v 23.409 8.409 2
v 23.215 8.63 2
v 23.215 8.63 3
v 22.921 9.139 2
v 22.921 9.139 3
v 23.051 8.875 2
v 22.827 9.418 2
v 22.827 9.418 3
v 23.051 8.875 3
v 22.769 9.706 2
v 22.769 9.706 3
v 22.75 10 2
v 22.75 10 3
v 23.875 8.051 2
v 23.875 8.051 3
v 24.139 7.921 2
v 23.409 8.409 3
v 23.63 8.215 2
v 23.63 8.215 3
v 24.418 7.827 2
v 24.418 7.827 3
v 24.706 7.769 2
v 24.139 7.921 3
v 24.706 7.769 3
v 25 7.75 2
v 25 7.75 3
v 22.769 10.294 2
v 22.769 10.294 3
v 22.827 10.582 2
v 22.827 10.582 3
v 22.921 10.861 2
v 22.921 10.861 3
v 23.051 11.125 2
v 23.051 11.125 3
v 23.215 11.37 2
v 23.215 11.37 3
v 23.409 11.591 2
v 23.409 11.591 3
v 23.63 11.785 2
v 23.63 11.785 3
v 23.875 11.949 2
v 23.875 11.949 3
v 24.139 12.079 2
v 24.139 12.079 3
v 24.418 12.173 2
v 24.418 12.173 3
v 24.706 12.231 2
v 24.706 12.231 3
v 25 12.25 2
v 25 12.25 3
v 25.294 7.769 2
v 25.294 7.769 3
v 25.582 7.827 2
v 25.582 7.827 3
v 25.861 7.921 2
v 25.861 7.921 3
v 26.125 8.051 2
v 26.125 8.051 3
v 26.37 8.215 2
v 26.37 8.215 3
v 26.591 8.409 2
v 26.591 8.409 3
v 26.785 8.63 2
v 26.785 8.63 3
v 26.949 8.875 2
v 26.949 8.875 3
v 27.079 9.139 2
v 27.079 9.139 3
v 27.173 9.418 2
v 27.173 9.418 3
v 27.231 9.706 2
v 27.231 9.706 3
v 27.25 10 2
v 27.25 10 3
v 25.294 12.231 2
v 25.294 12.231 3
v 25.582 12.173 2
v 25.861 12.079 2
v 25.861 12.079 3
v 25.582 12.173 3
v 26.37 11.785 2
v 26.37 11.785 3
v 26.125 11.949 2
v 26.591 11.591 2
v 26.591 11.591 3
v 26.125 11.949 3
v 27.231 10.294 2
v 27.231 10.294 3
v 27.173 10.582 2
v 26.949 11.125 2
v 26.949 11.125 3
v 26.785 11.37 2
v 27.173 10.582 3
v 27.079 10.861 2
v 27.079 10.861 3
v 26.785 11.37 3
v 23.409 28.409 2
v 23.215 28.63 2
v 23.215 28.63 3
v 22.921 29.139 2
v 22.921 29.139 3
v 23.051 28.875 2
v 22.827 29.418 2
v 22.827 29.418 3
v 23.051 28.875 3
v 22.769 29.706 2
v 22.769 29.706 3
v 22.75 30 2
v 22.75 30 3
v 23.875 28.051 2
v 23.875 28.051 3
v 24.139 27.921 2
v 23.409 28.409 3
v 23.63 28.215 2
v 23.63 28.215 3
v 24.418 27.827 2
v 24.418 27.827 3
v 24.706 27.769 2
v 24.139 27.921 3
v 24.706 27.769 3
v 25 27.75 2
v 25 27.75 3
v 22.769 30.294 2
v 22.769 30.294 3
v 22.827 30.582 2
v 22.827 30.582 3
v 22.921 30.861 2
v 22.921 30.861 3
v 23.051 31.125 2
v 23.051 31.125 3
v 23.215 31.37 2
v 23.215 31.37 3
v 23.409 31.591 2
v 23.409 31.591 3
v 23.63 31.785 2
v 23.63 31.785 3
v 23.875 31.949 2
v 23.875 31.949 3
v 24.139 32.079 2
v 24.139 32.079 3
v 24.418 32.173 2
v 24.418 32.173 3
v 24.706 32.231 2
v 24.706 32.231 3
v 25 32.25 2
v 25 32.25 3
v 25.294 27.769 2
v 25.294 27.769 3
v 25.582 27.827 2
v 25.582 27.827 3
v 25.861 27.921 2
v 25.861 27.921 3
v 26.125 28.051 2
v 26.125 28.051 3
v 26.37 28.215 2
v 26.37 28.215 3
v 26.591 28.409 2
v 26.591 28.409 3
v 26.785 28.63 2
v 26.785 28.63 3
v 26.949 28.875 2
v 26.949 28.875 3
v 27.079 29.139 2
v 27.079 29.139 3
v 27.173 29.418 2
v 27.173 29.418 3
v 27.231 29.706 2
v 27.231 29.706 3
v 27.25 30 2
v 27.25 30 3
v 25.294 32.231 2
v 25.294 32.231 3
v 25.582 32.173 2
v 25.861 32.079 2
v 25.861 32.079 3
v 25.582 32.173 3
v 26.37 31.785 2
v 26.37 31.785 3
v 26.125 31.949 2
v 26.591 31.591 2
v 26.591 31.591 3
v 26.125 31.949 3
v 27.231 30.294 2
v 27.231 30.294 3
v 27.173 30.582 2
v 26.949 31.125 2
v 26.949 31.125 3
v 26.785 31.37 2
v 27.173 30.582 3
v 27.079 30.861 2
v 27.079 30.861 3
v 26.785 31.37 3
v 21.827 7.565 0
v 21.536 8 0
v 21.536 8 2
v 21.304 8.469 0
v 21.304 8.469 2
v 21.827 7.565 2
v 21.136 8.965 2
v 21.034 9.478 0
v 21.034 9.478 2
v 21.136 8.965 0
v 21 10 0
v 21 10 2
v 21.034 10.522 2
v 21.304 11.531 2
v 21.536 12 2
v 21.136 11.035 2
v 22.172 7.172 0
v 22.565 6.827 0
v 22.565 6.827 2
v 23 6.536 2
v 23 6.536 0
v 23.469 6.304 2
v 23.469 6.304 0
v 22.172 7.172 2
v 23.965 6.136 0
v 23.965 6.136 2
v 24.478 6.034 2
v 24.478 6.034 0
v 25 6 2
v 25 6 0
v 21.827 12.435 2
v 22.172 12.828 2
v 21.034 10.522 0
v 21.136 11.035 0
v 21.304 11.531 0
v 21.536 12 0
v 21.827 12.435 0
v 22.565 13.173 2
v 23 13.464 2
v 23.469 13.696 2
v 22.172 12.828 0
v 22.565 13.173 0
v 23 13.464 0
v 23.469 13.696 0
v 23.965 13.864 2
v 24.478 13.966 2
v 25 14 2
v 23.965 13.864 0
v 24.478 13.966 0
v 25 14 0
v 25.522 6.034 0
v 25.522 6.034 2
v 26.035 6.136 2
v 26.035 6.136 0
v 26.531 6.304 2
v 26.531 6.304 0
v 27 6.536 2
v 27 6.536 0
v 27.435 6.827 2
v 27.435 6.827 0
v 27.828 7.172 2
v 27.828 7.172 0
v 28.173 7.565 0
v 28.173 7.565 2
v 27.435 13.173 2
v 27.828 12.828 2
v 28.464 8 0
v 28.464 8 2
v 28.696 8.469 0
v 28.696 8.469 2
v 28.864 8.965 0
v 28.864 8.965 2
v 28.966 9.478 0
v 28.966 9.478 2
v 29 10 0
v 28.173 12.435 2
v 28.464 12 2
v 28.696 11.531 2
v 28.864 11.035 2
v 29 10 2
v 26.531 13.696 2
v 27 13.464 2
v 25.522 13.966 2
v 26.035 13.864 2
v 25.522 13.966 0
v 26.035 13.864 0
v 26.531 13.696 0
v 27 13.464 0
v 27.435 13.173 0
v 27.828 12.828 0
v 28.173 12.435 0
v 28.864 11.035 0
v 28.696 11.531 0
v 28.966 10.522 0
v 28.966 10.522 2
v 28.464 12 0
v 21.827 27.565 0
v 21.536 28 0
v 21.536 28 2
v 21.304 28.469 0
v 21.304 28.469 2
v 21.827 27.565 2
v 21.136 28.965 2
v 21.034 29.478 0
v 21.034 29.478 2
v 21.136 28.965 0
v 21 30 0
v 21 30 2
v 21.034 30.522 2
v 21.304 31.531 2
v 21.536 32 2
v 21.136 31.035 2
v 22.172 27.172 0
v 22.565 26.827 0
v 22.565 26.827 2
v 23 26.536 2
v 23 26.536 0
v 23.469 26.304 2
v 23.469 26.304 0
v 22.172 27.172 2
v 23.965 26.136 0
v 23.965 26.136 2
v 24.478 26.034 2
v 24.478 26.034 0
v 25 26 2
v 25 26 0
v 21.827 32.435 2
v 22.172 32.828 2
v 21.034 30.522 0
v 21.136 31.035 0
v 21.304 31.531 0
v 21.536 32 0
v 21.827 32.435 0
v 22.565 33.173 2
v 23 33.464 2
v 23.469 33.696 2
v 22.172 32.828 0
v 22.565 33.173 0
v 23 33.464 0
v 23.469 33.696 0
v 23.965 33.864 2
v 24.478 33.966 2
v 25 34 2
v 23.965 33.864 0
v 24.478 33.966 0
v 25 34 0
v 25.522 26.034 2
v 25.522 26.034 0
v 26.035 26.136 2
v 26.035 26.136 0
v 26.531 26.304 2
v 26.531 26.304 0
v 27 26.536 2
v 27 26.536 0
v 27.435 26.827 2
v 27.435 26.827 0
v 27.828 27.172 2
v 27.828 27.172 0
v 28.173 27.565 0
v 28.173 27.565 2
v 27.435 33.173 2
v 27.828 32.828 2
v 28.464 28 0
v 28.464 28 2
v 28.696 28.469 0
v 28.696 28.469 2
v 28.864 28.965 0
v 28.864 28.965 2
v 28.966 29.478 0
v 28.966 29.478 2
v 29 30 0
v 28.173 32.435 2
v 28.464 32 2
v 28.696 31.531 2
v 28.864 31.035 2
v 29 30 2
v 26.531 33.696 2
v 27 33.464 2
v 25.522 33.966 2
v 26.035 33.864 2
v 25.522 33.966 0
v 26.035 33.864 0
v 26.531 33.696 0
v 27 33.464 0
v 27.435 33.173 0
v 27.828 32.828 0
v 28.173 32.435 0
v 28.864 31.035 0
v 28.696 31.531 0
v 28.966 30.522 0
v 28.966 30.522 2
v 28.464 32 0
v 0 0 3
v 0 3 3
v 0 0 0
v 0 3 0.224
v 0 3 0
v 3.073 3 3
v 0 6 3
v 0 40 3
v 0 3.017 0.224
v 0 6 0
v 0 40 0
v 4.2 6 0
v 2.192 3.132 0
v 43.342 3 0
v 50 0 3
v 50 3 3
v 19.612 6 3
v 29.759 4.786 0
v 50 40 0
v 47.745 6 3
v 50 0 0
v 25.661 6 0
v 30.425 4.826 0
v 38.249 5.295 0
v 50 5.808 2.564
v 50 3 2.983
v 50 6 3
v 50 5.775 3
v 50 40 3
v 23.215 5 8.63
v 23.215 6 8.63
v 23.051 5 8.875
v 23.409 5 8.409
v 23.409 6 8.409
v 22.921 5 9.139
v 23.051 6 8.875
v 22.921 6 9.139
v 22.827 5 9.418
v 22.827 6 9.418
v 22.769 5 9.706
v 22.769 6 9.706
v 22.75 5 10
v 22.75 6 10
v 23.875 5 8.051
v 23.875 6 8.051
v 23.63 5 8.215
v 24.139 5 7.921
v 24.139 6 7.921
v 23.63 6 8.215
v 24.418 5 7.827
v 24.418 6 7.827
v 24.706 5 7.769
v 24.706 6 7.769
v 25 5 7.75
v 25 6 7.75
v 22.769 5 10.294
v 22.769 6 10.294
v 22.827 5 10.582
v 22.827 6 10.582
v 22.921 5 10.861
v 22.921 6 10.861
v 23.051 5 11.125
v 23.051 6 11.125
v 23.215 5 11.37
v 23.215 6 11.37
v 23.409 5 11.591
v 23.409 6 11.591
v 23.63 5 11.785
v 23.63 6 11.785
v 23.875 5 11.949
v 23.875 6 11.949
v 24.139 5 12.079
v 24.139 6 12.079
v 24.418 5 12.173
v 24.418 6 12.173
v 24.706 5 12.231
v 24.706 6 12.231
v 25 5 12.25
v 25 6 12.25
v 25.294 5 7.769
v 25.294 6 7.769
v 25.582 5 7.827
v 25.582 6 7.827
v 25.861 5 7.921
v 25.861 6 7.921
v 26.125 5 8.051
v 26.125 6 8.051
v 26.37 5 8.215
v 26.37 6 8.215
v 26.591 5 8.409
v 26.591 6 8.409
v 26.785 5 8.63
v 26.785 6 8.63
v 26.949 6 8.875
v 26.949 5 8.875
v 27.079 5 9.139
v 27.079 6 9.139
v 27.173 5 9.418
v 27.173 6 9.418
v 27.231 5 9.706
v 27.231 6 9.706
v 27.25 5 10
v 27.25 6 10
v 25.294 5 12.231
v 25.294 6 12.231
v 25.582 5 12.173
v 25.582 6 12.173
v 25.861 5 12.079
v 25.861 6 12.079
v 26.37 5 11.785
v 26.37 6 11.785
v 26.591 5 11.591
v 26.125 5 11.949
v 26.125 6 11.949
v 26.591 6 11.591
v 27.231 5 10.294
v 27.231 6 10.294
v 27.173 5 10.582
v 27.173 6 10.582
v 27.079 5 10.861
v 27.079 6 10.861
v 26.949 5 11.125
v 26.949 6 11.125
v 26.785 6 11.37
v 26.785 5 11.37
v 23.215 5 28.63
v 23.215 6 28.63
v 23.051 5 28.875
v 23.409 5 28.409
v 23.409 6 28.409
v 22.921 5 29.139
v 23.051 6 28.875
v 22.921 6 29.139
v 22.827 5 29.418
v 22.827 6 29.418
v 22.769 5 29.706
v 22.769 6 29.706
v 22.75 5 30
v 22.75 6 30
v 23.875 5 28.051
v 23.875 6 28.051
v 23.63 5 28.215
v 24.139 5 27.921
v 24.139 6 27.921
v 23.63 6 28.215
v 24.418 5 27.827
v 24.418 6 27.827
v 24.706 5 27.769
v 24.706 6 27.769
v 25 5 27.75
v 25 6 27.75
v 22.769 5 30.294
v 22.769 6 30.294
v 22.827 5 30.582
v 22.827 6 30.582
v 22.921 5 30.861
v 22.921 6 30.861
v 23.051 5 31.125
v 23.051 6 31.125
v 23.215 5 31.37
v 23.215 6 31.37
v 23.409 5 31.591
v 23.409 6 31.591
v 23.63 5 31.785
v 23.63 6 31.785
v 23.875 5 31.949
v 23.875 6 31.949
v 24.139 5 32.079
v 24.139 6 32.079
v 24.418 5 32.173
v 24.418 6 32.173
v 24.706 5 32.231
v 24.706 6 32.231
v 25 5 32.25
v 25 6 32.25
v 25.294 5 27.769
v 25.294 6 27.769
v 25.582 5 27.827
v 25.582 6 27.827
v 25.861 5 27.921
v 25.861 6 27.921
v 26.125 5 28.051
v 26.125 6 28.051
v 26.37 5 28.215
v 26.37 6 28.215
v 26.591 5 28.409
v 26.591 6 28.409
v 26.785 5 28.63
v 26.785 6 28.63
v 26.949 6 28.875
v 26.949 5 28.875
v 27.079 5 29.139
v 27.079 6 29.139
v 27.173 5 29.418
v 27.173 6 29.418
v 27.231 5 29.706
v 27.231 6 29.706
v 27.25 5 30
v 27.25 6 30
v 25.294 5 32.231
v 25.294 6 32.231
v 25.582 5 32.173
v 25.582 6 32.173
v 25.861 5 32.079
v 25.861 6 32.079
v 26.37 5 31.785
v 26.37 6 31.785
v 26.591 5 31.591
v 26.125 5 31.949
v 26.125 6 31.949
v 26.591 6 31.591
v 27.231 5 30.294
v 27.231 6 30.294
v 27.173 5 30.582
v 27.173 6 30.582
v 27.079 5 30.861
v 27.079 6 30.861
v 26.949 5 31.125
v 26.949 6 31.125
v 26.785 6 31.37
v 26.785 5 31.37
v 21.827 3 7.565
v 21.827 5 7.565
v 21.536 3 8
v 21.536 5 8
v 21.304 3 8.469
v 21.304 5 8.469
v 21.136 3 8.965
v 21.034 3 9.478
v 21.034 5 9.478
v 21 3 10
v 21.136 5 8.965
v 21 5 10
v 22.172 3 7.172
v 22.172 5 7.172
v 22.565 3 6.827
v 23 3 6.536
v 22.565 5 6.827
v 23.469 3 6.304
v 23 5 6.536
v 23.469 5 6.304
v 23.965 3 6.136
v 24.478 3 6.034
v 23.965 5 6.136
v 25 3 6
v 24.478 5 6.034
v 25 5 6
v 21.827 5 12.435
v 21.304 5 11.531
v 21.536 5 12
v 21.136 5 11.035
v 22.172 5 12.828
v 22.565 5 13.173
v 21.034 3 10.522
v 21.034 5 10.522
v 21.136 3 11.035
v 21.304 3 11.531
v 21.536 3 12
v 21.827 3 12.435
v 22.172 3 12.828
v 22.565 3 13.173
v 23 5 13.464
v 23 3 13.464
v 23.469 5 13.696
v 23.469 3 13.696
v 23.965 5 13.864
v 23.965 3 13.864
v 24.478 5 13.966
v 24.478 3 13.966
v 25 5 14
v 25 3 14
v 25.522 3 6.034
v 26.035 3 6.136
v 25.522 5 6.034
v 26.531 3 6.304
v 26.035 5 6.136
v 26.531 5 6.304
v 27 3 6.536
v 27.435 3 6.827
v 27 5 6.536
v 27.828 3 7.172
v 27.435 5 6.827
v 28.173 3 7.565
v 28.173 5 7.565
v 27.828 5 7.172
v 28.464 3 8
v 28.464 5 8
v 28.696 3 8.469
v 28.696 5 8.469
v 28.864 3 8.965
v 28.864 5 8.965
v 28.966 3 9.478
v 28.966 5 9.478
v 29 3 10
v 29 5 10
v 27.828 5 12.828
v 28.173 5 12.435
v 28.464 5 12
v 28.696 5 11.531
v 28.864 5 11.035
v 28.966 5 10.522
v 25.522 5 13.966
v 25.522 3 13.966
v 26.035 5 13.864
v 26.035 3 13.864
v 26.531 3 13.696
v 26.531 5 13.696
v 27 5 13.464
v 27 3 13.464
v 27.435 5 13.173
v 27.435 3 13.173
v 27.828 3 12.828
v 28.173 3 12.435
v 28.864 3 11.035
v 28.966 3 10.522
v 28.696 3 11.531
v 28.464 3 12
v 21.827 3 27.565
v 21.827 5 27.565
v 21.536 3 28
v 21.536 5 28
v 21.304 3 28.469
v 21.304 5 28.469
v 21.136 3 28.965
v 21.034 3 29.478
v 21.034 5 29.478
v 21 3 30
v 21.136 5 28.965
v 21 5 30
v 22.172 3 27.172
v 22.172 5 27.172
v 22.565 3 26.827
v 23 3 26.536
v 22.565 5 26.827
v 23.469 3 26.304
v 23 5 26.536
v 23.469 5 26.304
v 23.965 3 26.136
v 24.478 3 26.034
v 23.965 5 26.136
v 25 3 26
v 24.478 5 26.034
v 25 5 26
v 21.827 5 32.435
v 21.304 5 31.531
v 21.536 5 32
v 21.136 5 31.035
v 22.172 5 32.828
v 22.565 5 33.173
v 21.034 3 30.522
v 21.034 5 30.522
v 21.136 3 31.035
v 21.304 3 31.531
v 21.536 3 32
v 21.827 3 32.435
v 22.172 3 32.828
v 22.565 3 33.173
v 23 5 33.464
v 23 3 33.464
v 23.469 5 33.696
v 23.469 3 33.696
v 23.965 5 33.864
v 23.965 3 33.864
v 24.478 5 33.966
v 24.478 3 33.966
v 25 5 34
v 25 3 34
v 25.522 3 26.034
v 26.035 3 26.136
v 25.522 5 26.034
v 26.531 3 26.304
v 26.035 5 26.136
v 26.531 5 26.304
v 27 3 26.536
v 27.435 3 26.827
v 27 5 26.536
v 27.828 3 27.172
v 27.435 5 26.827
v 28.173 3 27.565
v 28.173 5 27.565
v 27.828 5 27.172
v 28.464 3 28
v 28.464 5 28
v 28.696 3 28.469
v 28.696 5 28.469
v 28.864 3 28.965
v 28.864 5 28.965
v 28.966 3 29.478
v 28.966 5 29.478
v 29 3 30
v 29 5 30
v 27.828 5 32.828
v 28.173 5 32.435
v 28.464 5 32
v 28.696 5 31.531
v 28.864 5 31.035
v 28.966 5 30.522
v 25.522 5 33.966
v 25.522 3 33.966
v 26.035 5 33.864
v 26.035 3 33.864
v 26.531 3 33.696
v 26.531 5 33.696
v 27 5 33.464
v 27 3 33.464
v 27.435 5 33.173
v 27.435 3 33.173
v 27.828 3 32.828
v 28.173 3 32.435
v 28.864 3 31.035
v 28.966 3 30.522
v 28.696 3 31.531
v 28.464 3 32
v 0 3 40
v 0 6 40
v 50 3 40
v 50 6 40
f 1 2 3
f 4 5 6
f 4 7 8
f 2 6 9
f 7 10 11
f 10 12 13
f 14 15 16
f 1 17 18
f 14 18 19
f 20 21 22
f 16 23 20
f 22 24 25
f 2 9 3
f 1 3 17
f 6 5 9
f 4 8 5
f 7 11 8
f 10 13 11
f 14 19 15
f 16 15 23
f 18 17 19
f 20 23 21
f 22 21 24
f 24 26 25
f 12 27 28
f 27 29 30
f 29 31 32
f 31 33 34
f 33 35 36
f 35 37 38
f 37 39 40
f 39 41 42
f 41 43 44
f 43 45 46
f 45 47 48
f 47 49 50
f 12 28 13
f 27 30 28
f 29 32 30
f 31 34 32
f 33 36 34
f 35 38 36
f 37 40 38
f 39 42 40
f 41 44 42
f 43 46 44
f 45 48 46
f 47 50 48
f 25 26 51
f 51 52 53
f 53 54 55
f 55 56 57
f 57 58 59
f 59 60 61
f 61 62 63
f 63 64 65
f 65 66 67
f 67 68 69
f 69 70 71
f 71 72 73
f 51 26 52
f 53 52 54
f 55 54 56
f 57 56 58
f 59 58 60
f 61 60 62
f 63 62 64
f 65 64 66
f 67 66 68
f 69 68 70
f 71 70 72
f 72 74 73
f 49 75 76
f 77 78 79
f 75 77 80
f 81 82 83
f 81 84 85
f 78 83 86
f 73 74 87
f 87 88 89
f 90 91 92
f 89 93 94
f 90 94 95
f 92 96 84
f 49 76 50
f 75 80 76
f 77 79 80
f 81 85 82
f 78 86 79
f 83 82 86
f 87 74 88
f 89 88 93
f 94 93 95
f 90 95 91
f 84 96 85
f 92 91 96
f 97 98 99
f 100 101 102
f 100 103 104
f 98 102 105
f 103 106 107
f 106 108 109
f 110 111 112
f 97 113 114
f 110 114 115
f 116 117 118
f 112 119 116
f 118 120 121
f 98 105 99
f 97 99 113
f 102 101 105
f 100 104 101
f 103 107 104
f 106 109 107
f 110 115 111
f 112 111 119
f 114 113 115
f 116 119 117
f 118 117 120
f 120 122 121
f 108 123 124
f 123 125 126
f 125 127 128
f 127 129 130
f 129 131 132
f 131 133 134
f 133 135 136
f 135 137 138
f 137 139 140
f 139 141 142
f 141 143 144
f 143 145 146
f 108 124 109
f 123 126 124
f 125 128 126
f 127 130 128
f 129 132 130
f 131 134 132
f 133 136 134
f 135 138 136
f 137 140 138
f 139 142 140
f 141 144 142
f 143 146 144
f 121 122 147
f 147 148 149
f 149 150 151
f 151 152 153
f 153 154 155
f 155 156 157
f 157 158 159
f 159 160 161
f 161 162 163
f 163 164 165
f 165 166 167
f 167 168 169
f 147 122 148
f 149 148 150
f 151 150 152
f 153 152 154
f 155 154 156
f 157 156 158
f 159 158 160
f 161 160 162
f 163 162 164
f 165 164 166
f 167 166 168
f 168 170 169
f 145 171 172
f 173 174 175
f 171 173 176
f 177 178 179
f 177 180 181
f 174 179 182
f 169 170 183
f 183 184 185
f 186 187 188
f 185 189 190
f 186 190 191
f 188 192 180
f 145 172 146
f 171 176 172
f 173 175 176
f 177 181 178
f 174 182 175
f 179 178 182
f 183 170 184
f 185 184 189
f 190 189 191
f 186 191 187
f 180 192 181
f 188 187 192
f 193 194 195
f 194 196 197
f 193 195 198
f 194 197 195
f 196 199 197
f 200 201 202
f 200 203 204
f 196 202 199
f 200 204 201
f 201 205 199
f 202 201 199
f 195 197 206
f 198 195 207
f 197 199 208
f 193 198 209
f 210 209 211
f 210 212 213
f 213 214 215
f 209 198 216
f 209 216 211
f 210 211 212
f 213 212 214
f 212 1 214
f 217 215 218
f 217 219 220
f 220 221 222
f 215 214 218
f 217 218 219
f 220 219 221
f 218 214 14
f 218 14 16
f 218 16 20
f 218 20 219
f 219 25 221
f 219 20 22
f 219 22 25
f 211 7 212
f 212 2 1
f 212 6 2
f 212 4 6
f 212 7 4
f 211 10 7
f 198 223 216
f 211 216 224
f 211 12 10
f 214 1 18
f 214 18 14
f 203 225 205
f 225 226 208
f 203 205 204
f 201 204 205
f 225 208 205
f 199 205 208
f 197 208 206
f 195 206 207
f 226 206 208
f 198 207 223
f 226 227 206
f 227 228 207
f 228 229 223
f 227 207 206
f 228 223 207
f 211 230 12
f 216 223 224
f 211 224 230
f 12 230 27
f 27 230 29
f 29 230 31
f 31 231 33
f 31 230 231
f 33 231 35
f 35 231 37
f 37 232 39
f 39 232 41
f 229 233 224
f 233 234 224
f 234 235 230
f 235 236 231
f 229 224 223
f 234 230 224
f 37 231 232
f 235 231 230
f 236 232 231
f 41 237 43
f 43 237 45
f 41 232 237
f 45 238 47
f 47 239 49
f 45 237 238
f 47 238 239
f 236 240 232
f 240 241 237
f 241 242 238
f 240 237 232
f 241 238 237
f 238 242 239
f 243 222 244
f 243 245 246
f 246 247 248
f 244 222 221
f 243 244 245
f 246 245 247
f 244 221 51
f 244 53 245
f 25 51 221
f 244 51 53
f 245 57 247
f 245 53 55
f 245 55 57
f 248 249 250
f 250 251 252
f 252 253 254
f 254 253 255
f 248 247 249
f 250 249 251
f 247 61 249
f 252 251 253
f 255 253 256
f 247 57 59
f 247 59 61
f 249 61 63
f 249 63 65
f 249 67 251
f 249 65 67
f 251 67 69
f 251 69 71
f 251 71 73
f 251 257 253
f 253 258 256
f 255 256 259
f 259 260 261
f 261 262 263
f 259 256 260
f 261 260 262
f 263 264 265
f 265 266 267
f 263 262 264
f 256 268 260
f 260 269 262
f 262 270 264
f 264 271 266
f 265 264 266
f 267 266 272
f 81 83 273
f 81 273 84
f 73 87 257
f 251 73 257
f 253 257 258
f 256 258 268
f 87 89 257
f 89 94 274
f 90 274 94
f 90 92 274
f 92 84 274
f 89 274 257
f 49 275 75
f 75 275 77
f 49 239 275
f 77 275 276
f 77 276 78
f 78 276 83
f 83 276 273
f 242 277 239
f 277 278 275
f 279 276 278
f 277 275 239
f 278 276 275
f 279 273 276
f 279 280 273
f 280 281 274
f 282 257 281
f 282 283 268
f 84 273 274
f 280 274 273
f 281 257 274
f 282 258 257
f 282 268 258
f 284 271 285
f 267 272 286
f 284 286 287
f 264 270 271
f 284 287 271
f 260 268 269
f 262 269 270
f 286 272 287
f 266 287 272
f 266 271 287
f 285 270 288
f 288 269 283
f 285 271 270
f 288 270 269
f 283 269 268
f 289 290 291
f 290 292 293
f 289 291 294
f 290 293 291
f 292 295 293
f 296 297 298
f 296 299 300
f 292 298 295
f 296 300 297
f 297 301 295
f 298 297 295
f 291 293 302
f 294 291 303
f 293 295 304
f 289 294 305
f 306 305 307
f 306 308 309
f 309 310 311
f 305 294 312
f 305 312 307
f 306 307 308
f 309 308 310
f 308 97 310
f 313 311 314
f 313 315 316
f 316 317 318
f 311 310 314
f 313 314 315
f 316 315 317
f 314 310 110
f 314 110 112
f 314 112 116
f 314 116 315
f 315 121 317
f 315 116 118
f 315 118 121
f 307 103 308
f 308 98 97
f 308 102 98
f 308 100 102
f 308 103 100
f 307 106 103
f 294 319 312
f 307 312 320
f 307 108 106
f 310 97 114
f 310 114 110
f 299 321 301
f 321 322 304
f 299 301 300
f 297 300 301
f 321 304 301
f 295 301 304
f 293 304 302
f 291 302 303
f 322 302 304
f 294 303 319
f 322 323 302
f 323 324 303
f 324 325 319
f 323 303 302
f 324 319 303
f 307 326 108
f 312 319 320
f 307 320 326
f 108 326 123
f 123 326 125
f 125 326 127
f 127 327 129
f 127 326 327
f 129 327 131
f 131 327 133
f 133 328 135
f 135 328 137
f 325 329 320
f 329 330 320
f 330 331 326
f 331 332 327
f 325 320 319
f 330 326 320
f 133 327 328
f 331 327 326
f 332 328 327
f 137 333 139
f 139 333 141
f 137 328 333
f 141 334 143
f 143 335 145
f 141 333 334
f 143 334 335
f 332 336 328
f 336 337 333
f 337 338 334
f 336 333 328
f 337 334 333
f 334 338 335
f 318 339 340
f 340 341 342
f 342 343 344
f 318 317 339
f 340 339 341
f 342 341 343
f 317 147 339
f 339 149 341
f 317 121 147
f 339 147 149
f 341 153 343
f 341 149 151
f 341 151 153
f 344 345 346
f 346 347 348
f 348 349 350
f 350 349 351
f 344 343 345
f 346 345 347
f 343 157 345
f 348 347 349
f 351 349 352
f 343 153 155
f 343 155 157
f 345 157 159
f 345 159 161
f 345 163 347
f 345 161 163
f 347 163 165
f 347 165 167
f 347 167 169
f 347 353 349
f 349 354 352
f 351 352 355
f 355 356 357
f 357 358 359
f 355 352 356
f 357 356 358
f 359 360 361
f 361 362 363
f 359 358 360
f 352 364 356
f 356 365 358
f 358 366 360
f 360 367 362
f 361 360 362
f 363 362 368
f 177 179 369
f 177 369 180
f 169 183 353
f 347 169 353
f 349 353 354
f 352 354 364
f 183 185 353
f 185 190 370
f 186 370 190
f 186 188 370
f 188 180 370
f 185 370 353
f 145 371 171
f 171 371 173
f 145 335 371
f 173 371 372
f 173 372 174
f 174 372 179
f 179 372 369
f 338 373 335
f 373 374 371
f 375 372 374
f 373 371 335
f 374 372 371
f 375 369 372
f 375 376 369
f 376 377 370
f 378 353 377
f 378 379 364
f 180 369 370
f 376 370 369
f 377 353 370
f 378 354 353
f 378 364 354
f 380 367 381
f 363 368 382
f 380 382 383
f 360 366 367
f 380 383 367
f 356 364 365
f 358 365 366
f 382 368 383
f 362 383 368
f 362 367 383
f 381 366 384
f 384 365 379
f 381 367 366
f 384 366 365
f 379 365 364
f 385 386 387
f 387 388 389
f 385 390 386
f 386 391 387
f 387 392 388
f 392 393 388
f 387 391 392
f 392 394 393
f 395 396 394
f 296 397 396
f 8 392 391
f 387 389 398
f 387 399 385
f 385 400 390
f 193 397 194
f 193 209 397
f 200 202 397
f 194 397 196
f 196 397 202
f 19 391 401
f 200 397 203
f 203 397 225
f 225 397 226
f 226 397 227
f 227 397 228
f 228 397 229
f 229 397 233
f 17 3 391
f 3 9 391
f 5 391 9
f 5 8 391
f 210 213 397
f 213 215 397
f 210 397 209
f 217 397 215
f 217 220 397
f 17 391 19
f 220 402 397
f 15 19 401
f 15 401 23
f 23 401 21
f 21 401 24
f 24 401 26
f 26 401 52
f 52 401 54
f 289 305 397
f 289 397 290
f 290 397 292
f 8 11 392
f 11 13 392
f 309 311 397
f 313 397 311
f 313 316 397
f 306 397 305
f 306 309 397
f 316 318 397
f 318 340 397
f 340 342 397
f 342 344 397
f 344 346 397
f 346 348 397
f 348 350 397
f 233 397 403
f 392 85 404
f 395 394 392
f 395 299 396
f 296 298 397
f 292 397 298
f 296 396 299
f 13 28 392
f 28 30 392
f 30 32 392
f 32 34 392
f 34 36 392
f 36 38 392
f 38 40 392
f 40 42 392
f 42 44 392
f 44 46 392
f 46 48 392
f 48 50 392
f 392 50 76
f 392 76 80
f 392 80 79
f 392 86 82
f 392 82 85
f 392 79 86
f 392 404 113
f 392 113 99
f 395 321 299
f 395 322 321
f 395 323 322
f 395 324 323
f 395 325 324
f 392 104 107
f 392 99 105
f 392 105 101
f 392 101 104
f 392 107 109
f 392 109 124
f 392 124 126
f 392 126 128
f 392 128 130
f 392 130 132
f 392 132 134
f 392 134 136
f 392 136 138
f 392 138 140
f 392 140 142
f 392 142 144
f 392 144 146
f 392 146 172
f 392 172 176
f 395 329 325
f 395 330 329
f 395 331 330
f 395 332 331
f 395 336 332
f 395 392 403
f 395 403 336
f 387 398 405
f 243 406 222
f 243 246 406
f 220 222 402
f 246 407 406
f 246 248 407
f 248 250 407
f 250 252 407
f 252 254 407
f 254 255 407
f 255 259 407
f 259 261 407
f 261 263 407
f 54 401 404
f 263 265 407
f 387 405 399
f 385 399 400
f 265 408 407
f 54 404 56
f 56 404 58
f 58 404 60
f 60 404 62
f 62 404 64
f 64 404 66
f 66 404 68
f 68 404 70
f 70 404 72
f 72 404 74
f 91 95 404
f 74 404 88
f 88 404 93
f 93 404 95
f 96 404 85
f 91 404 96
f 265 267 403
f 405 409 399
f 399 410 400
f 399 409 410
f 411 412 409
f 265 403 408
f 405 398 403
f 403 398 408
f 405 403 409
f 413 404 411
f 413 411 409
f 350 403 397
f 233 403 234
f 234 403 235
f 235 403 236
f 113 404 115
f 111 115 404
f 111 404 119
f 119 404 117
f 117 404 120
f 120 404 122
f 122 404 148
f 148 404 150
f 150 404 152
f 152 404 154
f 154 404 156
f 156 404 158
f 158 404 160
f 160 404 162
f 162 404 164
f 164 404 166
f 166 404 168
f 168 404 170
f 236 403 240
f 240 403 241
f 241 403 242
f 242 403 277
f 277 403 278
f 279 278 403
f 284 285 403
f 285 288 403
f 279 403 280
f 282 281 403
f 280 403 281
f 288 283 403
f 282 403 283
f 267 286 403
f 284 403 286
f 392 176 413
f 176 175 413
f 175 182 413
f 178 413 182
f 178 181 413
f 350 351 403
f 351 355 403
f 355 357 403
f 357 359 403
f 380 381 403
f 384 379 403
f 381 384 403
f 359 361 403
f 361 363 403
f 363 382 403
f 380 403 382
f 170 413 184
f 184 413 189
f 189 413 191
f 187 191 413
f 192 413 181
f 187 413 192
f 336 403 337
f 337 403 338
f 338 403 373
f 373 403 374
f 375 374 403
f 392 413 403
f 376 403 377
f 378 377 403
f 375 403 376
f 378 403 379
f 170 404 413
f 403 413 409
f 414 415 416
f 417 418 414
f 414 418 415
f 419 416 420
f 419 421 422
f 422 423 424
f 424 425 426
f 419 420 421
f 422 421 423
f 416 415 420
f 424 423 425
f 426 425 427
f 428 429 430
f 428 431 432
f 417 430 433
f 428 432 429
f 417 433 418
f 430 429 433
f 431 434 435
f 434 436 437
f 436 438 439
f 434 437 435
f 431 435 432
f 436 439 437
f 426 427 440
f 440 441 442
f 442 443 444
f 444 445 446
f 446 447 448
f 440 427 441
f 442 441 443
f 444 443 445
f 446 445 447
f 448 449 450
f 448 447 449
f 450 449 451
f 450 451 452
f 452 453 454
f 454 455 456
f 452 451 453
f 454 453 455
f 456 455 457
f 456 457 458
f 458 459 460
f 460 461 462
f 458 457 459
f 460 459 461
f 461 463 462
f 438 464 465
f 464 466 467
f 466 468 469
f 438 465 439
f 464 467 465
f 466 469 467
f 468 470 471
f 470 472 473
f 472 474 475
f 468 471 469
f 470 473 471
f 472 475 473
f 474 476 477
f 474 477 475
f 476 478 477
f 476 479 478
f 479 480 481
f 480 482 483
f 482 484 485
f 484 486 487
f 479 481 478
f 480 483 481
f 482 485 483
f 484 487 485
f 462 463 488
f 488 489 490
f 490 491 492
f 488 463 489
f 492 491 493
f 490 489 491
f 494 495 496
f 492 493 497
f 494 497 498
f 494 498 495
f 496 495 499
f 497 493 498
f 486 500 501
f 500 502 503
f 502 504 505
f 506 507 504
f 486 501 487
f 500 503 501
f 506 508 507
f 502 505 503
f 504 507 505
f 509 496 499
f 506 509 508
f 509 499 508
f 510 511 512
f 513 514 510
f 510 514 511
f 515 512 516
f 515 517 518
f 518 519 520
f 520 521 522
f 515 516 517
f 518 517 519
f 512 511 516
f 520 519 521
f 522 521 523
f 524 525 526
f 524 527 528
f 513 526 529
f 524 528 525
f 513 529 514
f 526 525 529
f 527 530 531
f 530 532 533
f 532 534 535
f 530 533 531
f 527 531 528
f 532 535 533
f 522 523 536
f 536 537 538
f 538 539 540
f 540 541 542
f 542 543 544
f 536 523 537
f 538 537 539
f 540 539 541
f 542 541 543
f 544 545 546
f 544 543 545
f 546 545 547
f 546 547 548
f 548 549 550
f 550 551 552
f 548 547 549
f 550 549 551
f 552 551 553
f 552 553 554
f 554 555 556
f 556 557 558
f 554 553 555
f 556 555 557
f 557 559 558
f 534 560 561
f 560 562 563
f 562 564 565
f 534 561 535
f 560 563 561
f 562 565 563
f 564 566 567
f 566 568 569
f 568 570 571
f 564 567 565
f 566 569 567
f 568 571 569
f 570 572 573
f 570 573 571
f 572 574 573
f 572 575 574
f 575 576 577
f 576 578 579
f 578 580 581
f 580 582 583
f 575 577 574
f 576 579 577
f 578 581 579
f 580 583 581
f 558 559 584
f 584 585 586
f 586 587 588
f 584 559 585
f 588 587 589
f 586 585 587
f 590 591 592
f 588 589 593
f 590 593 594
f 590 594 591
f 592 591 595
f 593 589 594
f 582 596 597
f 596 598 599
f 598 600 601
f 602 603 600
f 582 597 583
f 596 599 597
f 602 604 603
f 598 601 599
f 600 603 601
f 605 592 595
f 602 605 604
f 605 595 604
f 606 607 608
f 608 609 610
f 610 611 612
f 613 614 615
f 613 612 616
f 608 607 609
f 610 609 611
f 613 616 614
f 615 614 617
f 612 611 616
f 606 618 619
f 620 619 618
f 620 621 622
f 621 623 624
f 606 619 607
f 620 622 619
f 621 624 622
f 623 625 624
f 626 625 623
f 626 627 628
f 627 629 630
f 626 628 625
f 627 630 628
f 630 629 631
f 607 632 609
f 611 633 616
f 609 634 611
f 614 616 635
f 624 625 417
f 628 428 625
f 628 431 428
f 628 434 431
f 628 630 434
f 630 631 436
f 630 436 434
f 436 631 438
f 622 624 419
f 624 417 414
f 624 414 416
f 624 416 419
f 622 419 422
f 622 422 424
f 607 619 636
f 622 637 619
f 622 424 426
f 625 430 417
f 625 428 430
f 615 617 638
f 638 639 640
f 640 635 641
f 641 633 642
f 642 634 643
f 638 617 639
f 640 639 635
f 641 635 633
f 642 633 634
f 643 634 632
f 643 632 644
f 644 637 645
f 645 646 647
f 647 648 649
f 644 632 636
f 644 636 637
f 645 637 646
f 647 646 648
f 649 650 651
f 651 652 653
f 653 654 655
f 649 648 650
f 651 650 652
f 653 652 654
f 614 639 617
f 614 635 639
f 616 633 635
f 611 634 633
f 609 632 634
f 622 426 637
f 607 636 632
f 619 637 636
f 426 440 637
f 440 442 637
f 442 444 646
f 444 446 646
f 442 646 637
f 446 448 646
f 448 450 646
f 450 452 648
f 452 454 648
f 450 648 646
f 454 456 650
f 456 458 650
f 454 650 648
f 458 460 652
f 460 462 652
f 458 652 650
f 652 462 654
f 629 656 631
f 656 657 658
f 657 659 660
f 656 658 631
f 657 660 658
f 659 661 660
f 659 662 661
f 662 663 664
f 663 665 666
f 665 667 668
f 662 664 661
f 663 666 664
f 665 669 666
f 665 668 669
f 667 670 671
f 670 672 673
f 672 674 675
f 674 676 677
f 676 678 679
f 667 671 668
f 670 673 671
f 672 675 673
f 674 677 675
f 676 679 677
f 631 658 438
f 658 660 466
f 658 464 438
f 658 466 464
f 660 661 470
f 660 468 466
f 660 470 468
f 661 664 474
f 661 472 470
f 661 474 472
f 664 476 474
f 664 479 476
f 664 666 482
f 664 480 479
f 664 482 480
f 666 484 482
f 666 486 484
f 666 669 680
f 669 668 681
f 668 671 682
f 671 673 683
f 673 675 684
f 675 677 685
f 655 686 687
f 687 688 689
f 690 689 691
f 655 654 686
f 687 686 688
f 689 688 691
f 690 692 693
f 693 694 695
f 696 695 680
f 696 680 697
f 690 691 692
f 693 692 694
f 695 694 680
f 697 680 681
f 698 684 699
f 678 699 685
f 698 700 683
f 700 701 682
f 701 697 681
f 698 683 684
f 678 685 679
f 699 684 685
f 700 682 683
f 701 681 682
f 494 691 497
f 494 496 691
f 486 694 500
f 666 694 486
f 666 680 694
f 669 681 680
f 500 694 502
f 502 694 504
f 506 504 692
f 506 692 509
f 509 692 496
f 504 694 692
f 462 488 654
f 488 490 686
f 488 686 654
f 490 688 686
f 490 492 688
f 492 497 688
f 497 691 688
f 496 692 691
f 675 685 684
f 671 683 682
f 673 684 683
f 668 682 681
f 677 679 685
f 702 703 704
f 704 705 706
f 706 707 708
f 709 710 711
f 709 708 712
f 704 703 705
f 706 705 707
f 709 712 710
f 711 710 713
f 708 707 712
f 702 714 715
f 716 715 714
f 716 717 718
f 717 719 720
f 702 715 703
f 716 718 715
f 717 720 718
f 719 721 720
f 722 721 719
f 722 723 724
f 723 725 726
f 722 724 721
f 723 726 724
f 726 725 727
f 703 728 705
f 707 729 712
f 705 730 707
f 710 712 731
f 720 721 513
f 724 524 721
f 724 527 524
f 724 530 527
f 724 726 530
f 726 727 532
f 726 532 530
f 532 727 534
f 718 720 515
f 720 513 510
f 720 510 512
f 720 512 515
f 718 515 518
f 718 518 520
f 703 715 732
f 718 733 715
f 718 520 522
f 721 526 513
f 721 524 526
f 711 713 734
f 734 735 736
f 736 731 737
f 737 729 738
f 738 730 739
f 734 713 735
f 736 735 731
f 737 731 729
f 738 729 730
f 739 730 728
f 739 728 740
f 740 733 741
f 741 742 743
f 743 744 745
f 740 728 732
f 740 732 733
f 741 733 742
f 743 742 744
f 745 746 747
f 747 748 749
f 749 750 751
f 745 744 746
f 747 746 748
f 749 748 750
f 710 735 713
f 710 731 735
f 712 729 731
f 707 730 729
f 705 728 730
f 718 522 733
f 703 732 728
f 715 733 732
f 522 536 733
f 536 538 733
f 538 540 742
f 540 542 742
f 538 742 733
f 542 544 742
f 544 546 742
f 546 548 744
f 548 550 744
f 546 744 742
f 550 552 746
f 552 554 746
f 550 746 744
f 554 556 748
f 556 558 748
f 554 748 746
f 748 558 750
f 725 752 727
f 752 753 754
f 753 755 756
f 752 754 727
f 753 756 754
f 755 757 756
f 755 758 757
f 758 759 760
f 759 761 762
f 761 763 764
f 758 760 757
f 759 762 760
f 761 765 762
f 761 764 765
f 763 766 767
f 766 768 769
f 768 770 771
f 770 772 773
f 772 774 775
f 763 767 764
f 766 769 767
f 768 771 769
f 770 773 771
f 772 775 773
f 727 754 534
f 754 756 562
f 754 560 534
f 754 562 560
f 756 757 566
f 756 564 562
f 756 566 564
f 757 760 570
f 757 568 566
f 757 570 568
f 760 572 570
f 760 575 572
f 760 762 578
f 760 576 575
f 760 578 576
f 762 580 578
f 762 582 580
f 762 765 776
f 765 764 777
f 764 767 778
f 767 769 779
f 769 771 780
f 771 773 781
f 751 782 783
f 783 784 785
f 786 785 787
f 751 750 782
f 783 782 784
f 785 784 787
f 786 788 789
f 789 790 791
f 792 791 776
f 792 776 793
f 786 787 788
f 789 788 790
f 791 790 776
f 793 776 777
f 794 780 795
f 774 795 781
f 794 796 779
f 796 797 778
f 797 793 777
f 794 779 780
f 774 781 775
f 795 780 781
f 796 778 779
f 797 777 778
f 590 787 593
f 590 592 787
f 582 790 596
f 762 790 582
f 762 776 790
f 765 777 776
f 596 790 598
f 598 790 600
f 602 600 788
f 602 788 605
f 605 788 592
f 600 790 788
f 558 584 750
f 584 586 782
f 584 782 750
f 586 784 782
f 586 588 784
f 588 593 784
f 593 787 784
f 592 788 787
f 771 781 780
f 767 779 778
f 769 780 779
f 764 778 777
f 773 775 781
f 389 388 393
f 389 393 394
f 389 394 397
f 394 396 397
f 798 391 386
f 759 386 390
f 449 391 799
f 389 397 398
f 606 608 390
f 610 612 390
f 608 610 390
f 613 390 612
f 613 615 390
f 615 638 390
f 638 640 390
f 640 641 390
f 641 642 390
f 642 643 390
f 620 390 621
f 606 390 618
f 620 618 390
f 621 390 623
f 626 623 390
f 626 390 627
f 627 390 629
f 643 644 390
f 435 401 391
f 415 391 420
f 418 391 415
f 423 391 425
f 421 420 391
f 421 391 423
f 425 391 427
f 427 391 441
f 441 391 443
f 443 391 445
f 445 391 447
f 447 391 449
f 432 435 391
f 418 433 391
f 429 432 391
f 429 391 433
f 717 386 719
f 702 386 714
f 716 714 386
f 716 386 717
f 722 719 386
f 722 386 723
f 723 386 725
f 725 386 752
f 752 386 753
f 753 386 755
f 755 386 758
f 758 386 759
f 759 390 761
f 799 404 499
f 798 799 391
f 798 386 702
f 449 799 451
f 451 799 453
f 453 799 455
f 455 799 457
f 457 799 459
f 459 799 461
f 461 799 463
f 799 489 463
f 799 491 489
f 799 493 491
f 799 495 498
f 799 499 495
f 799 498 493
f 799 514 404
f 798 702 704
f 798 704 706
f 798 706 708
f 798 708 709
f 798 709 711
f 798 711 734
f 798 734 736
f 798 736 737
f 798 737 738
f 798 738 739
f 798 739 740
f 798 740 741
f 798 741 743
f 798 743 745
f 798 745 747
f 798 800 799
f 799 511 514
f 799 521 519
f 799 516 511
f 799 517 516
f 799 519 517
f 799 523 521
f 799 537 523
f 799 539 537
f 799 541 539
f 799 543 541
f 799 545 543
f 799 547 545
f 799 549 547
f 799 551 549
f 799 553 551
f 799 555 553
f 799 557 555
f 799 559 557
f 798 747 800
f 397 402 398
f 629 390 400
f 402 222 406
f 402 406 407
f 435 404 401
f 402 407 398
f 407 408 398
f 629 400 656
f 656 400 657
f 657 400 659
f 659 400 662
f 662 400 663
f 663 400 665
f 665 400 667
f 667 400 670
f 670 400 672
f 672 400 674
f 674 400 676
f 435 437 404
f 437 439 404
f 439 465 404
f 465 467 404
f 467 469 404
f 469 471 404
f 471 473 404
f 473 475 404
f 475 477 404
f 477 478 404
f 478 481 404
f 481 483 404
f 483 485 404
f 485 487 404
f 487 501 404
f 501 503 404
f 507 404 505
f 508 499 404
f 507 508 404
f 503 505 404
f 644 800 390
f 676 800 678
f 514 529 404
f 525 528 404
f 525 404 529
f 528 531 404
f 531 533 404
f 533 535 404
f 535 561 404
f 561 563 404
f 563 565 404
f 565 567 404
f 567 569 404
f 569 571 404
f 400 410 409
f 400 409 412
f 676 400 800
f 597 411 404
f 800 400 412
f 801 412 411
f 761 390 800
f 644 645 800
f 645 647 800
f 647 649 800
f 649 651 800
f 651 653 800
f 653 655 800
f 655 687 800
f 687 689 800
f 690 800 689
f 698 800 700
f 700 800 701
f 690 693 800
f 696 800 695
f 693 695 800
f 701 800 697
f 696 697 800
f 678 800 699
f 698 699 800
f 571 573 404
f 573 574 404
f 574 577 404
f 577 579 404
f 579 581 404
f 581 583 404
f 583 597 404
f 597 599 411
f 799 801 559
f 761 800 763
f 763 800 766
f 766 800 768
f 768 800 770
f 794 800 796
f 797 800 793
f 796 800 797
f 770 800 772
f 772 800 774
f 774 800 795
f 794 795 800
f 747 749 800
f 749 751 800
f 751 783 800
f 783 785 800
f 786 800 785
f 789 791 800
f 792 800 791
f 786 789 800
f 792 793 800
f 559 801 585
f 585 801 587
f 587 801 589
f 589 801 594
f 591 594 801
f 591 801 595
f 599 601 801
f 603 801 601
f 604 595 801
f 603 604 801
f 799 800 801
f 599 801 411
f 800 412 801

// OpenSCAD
// パラメータ
bracket_w = 50;   // 幅
bracket_h = 40;   // 奥行・高さ
thickness = 3;

// 皿穴パラメータ
hole_d = 4.5;      // 貫通穴径
cs_d = 8;          // 皿座径
cs_depth = 2;      // 皿座深さ
edge_offset = 10;  // フランジ面の縁から穴中心までの距離

// 2つ穴のY/Z座標
hole_pos = [edge_offset, bracket_h - edge_offset];

// 内側コーナーが原点
module flange_horizontal() {
    // 原点コーナーから +Y 方向へ
    difference() {
        cube([bracket_w, bracket_h, thickness]);
        // 穴: 原点からY方向へ広がる、皿頭外側（Z=0側が外面）
        for (y = hole_pos)
            translate([bracket_w/2, y, 0])
                countersunk_hole_down();
    }
}
module flange_vertical() {
    // 原点から +Z方向へ
    difference() {
        cube([bracket_w, thickness, bracket_h]);
        // 穴: 原点からZ方向へ広がる、皿頭外側（Y=0側が外面）
        for (z = hole_pos)
            translate([bracket_w/2, 0, z])
                countersunk_hole_front();
    }
}

// 水平面側: 下側が皿座
module countersunk_hole_down() {
    // 貫通穴
    cylinder(d=hole_d, h=thickness+0.5, $fn=48);
    // 皿座
    cylinder(d=cs_d, h=cs_depth, $fn=48);
}

// 垂直面側: 正面(Y=0)側が皿座
module countersunk_hole_front() {
    rotate([-90,0,0])
    {
        cylinder(d=hole_d, h=thickness+0.5, $fn=48);
        cylinder(d=cs_d, h=cs_depth, $fn=48);
    }
}

// 組立（内側コーナーが原点!）
flange_horizontal();
translate([0, thickness, 0]) // 水平板のY端の真上(Z=0)に垂直板
    flange_vertical();
